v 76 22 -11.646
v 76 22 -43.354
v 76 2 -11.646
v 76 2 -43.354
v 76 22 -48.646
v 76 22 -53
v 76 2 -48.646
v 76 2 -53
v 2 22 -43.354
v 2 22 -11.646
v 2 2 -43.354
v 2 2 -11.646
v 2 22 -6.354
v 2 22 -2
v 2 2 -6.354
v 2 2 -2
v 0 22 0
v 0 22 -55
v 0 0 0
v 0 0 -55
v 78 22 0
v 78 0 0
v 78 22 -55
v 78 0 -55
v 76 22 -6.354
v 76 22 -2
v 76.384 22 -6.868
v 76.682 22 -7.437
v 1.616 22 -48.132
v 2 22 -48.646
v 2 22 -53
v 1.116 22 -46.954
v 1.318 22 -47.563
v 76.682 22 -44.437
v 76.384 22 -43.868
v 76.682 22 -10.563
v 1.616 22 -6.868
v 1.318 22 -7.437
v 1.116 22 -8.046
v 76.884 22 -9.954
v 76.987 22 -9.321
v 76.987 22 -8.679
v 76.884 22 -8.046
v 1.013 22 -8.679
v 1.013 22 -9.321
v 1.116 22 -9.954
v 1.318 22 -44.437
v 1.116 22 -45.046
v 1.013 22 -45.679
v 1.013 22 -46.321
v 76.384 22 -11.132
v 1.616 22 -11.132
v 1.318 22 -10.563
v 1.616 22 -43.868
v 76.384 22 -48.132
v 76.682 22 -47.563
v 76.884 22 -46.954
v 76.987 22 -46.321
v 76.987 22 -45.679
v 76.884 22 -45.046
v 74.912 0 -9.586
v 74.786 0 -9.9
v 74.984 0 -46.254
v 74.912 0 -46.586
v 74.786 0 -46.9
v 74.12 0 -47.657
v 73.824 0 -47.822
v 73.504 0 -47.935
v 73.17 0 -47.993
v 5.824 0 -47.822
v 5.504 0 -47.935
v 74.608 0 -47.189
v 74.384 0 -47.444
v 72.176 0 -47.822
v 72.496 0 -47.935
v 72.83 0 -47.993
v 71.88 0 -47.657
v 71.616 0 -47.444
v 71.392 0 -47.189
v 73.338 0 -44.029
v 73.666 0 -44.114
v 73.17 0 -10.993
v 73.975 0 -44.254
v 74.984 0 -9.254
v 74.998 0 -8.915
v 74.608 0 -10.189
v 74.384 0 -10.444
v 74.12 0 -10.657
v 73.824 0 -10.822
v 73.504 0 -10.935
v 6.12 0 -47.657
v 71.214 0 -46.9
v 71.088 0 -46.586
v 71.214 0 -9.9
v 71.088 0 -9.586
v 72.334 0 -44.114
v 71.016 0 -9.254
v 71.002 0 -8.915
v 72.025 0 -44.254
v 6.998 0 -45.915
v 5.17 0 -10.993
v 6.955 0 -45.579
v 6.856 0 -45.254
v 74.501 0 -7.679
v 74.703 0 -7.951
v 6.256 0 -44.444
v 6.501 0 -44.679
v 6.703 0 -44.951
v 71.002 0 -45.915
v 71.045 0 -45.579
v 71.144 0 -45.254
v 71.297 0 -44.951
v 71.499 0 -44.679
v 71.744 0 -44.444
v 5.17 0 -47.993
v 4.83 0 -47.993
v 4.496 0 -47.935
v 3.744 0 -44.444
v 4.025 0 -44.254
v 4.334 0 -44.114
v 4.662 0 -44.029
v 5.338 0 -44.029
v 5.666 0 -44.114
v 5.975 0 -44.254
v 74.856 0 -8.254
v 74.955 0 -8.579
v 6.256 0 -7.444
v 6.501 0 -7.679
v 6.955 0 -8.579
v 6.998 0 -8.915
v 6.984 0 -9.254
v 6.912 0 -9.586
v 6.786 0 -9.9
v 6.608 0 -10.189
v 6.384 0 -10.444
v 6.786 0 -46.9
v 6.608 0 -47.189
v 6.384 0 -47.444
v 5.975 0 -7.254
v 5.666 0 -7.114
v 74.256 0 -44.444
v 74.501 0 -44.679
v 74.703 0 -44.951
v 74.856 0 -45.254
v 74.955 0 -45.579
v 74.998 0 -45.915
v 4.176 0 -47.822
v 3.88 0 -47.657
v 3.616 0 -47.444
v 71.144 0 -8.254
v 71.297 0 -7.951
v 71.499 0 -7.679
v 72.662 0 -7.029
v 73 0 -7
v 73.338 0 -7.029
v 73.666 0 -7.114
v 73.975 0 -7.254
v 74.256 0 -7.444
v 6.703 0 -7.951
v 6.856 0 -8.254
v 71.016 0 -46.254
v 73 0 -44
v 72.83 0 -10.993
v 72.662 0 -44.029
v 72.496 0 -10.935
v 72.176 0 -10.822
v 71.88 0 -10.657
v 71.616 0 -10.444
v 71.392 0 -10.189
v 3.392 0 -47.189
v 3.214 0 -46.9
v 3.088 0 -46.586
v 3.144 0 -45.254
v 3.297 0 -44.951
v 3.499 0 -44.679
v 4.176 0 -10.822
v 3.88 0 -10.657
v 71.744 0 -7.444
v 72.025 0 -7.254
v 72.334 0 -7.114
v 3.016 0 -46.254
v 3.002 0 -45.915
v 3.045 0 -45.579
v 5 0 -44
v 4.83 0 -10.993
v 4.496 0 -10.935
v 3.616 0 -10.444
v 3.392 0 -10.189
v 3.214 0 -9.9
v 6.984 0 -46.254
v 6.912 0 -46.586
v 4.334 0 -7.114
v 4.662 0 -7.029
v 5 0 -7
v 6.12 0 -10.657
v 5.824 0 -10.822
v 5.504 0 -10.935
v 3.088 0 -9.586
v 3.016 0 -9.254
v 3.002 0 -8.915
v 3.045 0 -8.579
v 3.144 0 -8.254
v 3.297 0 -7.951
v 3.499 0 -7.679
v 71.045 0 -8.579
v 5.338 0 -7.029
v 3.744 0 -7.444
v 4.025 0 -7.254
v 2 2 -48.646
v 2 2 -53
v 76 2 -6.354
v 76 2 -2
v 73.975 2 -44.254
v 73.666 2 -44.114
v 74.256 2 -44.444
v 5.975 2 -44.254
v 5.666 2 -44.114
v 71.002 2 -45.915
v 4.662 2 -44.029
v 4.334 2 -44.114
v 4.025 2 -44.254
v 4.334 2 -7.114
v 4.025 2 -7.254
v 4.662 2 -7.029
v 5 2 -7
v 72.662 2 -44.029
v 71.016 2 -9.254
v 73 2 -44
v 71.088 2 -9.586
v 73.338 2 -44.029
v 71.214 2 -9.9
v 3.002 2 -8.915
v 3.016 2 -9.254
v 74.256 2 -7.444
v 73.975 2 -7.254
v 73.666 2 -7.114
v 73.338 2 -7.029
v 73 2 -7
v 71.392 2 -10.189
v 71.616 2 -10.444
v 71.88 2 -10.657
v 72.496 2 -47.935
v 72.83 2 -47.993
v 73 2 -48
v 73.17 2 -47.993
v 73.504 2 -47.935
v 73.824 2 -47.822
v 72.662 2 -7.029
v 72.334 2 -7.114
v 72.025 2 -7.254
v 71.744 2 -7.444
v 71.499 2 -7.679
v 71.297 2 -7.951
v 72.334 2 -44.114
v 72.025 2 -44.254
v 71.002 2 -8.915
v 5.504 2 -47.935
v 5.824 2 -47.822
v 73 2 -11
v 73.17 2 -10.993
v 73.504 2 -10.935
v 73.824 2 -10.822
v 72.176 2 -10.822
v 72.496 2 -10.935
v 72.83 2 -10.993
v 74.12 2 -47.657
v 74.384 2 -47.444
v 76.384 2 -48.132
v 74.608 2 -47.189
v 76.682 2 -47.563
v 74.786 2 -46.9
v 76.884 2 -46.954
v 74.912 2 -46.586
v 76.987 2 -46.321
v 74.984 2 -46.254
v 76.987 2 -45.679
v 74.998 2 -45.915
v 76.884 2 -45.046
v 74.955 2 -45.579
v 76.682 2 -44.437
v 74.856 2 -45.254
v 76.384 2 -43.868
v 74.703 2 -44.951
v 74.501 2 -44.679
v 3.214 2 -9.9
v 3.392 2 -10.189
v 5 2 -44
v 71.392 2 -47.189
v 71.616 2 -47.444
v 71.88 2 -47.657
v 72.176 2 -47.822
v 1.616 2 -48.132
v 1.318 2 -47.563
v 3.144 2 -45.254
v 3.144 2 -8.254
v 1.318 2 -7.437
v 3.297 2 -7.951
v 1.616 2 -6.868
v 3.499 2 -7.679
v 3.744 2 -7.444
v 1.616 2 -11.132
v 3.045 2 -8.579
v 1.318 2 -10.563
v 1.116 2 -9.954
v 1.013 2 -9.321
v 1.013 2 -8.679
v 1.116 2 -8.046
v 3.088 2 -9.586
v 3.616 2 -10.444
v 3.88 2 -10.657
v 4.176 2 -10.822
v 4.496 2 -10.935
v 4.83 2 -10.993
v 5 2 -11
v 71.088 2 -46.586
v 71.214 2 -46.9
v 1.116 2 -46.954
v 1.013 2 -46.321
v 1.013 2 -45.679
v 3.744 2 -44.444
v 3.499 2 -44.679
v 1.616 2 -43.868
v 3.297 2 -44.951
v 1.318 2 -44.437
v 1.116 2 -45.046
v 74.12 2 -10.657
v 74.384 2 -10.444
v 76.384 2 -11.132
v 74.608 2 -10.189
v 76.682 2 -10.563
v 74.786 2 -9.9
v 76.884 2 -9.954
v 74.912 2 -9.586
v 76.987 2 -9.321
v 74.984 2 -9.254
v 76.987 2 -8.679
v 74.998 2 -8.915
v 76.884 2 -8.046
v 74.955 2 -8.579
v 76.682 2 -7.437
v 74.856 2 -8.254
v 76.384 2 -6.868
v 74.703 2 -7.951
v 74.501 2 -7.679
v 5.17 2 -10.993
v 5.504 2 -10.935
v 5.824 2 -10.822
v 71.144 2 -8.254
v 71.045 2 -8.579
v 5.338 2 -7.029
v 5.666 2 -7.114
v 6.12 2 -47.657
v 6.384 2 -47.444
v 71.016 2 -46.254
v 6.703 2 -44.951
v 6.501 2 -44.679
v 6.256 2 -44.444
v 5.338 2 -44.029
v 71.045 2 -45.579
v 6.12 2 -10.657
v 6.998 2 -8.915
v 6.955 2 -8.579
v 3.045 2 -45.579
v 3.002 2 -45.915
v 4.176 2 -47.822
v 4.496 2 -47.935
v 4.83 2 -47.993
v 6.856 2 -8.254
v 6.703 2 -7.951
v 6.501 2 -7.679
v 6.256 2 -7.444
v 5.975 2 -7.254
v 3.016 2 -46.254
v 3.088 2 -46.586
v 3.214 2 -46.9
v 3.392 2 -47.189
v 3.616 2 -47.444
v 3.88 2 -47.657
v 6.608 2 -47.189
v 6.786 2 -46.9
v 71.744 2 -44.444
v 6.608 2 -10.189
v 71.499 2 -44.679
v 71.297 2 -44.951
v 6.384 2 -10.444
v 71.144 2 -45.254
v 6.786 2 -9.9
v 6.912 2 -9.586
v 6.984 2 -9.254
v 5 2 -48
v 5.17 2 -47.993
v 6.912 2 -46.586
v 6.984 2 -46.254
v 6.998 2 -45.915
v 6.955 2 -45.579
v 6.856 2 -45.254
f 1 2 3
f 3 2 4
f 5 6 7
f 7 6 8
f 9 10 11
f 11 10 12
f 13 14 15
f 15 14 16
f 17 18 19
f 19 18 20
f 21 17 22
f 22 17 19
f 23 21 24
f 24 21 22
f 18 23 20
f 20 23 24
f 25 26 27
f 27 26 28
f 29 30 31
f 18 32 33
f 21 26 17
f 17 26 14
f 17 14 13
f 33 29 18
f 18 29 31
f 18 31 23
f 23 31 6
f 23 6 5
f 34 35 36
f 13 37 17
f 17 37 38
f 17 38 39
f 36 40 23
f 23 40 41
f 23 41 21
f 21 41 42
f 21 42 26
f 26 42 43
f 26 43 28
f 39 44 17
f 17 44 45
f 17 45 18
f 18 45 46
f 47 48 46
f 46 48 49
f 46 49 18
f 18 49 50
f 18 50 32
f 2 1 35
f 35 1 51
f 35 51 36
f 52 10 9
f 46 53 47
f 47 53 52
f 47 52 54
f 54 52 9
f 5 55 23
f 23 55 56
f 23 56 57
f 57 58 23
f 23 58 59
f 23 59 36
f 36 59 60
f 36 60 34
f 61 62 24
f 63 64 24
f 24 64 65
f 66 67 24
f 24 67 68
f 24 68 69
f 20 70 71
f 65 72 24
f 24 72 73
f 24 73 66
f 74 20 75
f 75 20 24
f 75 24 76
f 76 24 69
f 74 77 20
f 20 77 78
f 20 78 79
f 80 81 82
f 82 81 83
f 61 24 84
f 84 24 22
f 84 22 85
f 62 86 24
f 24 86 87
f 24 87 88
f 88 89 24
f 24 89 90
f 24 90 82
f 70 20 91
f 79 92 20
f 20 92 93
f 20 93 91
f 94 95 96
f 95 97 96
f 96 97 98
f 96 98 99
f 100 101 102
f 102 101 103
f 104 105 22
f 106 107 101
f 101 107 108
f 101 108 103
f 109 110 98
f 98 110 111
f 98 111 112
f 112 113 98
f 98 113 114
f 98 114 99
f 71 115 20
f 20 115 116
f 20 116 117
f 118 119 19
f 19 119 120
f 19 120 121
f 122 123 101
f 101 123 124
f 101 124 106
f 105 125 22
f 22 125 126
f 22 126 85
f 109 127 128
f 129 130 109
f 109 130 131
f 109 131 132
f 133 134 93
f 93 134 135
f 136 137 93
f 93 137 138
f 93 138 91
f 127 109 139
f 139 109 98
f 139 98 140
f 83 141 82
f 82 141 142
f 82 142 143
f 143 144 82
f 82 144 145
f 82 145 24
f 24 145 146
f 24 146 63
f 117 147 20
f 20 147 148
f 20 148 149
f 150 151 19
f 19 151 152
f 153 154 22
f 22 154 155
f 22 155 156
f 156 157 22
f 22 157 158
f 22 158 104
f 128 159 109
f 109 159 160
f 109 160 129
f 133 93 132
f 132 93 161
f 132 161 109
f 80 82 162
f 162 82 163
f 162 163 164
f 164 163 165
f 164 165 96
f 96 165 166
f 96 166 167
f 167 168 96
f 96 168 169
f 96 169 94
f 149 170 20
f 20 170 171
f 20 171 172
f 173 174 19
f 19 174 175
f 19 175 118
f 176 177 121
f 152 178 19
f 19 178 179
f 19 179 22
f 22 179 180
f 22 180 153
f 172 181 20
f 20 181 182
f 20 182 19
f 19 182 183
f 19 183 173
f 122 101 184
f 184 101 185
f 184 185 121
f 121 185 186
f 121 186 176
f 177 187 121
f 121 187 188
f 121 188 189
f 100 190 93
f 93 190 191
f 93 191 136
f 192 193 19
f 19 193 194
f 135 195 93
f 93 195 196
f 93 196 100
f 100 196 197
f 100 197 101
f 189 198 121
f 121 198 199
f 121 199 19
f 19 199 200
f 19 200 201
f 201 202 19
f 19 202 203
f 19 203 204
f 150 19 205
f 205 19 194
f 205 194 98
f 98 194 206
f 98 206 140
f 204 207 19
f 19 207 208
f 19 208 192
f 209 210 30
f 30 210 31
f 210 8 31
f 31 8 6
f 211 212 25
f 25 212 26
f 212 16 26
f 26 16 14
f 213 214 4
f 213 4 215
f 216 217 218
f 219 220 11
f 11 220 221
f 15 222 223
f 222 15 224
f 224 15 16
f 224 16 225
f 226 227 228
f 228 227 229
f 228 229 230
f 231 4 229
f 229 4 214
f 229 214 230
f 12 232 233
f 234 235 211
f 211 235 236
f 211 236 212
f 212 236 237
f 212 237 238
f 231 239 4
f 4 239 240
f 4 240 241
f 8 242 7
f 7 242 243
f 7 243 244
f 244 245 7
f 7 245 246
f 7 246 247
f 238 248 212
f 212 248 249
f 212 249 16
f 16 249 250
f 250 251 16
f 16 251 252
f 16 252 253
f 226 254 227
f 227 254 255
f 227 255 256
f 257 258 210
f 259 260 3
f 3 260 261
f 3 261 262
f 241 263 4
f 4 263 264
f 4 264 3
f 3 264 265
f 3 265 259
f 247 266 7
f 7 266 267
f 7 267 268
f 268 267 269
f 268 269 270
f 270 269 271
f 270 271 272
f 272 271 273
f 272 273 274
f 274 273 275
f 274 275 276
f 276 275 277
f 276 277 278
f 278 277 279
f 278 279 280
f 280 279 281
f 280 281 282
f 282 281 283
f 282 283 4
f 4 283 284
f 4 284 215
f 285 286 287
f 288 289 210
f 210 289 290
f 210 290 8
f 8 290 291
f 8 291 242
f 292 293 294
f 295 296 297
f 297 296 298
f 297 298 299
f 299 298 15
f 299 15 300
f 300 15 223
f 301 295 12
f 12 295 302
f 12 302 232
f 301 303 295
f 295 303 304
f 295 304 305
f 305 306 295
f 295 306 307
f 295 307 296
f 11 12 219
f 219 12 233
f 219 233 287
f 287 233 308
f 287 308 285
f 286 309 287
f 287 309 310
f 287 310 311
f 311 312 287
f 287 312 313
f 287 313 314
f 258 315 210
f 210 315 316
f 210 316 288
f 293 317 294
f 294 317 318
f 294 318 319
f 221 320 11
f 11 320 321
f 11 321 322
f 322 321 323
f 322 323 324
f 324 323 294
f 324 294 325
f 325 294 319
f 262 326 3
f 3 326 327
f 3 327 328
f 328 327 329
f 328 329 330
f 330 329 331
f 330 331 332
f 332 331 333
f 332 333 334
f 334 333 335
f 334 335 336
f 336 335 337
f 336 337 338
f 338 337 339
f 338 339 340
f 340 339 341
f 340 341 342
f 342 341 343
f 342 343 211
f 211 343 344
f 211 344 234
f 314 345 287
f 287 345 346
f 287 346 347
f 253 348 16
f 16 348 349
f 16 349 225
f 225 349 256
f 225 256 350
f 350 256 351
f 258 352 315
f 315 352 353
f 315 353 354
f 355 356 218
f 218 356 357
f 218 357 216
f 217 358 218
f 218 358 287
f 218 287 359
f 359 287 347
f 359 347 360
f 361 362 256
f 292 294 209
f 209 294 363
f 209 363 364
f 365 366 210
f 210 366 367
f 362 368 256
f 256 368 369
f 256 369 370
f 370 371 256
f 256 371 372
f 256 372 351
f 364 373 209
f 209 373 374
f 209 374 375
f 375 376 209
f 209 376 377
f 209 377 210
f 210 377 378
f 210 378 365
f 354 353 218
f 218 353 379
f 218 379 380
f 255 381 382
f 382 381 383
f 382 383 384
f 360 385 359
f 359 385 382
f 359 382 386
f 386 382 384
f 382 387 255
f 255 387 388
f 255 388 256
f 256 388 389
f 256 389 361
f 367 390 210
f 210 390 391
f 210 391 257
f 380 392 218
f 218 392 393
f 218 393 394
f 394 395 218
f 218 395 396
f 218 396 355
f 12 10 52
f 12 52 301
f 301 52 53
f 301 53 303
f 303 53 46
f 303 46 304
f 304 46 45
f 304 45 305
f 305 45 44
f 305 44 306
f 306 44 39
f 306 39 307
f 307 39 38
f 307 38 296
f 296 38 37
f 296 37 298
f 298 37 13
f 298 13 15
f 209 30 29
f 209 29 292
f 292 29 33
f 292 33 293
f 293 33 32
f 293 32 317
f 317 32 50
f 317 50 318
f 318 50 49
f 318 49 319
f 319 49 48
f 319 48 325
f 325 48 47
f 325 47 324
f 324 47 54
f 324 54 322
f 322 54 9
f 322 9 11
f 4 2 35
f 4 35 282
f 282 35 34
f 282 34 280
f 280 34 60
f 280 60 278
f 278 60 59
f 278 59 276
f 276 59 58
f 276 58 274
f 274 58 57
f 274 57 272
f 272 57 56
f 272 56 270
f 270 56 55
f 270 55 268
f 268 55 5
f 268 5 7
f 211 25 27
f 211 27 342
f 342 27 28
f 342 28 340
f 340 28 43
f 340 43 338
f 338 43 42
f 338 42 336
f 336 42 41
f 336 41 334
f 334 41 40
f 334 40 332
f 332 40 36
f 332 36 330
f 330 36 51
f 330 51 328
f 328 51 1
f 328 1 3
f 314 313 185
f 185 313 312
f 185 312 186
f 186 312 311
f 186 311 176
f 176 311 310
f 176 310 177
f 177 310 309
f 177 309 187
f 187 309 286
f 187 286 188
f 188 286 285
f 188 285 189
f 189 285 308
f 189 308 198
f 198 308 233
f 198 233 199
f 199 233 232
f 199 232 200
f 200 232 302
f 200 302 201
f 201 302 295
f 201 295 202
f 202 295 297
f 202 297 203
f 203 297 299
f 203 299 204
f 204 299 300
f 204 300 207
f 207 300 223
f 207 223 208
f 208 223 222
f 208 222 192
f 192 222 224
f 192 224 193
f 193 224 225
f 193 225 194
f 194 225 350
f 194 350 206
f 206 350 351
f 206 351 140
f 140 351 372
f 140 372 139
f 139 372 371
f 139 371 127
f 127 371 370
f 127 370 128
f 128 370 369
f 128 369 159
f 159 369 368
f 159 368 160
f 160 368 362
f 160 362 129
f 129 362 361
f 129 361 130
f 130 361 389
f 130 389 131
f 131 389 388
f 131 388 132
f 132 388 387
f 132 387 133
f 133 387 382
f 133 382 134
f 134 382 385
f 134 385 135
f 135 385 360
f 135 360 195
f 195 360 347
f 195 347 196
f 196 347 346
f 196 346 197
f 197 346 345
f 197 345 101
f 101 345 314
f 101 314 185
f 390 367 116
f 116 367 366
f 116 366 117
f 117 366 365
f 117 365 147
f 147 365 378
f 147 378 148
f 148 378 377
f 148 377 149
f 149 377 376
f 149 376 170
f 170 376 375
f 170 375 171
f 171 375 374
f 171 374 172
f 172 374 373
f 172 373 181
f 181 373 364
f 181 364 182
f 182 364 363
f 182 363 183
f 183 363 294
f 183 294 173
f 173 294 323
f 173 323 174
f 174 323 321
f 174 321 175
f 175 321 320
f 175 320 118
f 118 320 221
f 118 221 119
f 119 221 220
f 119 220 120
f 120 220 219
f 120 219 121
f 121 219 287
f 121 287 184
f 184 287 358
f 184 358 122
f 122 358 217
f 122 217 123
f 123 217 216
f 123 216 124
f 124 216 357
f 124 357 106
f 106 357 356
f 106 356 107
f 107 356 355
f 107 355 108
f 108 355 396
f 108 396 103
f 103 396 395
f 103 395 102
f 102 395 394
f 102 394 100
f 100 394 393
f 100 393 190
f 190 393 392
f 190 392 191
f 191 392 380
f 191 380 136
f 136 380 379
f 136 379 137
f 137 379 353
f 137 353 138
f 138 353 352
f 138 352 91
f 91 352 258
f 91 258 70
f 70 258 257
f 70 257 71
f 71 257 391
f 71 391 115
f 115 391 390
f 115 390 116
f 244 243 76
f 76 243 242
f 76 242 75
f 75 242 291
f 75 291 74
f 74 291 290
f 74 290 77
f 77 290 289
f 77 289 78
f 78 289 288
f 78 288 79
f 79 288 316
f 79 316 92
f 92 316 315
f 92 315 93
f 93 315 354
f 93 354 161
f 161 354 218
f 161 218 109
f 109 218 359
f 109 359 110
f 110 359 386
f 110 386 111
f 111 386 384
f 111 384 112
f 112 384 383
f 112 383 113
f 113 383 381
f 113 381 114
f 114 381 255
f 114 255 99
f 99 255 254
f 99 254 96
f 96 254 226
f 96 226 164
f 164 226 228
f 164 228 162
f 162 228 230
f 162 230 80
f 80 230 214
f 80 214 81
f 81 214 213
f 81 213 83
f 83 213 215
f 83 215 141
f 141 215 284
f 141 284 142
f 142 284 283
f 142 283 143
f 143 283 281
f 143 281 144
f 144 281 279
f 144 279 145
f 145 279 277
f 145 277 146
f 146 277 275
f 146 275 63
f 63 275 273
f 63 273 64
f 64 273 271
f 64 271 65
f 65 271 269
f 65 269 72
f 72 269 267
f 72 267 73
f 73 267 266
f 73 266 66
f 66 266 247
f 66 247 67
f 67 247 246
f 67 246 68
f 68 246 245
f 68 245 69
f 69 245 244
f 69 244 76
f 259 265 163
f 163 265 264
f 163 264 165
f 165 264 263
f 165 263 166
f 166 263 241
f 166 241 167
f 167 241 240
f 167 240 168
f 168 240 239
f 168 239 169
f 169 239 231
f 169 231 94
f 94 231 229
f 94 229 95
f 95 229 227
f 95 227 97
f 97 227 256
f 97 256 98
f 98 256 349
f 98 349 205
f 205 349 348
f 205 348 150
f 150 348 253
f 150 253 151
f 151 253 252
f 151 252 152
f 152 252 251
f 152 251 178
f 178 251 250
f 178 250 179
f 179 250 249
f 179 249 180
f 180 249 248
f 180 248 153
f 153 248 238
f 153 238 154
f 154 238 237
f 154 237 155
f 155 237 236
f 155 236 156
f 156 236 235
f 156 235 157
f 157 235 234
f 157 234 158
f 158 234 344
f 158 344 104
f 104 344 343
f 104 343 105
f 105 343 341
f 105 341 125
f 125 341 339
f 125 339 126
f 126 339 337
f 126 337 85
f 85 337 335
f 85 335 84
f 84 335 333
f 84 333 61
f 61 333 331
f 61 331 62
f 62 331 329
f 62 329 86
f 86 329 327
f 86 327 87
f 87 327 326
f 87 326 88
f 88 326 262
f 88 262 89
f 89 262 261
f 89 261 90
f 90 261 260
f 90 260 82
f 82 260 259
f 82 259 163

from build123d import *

# Parameters (mm, degrees)
SKETCH_1_W          = 78
SKETCH_1_H          = 55
EXTRUDE_1_DEPTH     = 22
SKETCH_2_W          = 74
SKETCH_2_H          = 51
CUT_EXTRUDE_1_DEPTH = 20
SKETCH_4_R          = 4
CUT_EXTRUDE_2_DEPTH = 20
SKETCH_5_R          = 2
CUT_EXTRUDE_4_DEPTH = 23


with BuildPart() as part:
    # 草图1 → 凸台-拉伸1 (new body)
    with BuildSketch(Plane(origin=(0, 0, 0), x_dir=(1, 0, 0), z_dir=(0, 1, 0))):
        with Locations((39, 27.5)):
            Rectangle(SKETCH_1_W, SKETCH_1_H)
    extrude(amount=EXTRUDE_1_DEPTH)

    # 草图2 → 切除-拉伸1 (cut)
    with BuildSketch(Plane(origin=(0, 22, 0), x_dir=(1, 0, 0), z_dir=(0, 1, 0))):
        with Locations((39, 27.5)):
            Rectangle(SKETCH_2_W, SKETCH_2_H)
    extrude(amount=-CUT_EXTRUDE_1_DEPTH, mode=Mode.SUBTRACT)

    # 草图4 → 切除-拉伸2 (cut)
    with BuildSketch(Plane(origin=(0, 22, 0), x_dir=(1, 0, 0), z_dir=(0, 1, 0))):
        with Locations((5, 9)):
            Circle(SKETCH_4_R)
        with Locations((5, 46)):
            Circle(SKETCH_4_R)
        with Locations((73, 46)):
            Circle(SKETCH_4_R)
        with Locations((73, 9)):
            Circle(SKETCH_4_R)
    extrude(amount=-CUT_EXTRUDE_2_DEPTH, mode=Mode.SUBTRACT)

    # 草图5 → 切除-拉伸4 (cut, through all)
    with BuildSketch(Plane(origin=(0, 22, 0), x_dir=(1, 0, 0), z_dir=(0, 1, 0))):
        with Locations((5, 9)):
            Circle(SKETCH_5_R)
        with Locations((5, 46)):
            Circle(SKETCH_5_R)
        with Locations((73, 46)):
            Circle(SKETCH_5_R)
        with Locations((73, 9)):
            Circle(SKETCH_5_R)
    extrude(amount=-CUT_EXTRUDE_4_DEPTH, mode=Mode.SUBTRACT)


solid = part.part
